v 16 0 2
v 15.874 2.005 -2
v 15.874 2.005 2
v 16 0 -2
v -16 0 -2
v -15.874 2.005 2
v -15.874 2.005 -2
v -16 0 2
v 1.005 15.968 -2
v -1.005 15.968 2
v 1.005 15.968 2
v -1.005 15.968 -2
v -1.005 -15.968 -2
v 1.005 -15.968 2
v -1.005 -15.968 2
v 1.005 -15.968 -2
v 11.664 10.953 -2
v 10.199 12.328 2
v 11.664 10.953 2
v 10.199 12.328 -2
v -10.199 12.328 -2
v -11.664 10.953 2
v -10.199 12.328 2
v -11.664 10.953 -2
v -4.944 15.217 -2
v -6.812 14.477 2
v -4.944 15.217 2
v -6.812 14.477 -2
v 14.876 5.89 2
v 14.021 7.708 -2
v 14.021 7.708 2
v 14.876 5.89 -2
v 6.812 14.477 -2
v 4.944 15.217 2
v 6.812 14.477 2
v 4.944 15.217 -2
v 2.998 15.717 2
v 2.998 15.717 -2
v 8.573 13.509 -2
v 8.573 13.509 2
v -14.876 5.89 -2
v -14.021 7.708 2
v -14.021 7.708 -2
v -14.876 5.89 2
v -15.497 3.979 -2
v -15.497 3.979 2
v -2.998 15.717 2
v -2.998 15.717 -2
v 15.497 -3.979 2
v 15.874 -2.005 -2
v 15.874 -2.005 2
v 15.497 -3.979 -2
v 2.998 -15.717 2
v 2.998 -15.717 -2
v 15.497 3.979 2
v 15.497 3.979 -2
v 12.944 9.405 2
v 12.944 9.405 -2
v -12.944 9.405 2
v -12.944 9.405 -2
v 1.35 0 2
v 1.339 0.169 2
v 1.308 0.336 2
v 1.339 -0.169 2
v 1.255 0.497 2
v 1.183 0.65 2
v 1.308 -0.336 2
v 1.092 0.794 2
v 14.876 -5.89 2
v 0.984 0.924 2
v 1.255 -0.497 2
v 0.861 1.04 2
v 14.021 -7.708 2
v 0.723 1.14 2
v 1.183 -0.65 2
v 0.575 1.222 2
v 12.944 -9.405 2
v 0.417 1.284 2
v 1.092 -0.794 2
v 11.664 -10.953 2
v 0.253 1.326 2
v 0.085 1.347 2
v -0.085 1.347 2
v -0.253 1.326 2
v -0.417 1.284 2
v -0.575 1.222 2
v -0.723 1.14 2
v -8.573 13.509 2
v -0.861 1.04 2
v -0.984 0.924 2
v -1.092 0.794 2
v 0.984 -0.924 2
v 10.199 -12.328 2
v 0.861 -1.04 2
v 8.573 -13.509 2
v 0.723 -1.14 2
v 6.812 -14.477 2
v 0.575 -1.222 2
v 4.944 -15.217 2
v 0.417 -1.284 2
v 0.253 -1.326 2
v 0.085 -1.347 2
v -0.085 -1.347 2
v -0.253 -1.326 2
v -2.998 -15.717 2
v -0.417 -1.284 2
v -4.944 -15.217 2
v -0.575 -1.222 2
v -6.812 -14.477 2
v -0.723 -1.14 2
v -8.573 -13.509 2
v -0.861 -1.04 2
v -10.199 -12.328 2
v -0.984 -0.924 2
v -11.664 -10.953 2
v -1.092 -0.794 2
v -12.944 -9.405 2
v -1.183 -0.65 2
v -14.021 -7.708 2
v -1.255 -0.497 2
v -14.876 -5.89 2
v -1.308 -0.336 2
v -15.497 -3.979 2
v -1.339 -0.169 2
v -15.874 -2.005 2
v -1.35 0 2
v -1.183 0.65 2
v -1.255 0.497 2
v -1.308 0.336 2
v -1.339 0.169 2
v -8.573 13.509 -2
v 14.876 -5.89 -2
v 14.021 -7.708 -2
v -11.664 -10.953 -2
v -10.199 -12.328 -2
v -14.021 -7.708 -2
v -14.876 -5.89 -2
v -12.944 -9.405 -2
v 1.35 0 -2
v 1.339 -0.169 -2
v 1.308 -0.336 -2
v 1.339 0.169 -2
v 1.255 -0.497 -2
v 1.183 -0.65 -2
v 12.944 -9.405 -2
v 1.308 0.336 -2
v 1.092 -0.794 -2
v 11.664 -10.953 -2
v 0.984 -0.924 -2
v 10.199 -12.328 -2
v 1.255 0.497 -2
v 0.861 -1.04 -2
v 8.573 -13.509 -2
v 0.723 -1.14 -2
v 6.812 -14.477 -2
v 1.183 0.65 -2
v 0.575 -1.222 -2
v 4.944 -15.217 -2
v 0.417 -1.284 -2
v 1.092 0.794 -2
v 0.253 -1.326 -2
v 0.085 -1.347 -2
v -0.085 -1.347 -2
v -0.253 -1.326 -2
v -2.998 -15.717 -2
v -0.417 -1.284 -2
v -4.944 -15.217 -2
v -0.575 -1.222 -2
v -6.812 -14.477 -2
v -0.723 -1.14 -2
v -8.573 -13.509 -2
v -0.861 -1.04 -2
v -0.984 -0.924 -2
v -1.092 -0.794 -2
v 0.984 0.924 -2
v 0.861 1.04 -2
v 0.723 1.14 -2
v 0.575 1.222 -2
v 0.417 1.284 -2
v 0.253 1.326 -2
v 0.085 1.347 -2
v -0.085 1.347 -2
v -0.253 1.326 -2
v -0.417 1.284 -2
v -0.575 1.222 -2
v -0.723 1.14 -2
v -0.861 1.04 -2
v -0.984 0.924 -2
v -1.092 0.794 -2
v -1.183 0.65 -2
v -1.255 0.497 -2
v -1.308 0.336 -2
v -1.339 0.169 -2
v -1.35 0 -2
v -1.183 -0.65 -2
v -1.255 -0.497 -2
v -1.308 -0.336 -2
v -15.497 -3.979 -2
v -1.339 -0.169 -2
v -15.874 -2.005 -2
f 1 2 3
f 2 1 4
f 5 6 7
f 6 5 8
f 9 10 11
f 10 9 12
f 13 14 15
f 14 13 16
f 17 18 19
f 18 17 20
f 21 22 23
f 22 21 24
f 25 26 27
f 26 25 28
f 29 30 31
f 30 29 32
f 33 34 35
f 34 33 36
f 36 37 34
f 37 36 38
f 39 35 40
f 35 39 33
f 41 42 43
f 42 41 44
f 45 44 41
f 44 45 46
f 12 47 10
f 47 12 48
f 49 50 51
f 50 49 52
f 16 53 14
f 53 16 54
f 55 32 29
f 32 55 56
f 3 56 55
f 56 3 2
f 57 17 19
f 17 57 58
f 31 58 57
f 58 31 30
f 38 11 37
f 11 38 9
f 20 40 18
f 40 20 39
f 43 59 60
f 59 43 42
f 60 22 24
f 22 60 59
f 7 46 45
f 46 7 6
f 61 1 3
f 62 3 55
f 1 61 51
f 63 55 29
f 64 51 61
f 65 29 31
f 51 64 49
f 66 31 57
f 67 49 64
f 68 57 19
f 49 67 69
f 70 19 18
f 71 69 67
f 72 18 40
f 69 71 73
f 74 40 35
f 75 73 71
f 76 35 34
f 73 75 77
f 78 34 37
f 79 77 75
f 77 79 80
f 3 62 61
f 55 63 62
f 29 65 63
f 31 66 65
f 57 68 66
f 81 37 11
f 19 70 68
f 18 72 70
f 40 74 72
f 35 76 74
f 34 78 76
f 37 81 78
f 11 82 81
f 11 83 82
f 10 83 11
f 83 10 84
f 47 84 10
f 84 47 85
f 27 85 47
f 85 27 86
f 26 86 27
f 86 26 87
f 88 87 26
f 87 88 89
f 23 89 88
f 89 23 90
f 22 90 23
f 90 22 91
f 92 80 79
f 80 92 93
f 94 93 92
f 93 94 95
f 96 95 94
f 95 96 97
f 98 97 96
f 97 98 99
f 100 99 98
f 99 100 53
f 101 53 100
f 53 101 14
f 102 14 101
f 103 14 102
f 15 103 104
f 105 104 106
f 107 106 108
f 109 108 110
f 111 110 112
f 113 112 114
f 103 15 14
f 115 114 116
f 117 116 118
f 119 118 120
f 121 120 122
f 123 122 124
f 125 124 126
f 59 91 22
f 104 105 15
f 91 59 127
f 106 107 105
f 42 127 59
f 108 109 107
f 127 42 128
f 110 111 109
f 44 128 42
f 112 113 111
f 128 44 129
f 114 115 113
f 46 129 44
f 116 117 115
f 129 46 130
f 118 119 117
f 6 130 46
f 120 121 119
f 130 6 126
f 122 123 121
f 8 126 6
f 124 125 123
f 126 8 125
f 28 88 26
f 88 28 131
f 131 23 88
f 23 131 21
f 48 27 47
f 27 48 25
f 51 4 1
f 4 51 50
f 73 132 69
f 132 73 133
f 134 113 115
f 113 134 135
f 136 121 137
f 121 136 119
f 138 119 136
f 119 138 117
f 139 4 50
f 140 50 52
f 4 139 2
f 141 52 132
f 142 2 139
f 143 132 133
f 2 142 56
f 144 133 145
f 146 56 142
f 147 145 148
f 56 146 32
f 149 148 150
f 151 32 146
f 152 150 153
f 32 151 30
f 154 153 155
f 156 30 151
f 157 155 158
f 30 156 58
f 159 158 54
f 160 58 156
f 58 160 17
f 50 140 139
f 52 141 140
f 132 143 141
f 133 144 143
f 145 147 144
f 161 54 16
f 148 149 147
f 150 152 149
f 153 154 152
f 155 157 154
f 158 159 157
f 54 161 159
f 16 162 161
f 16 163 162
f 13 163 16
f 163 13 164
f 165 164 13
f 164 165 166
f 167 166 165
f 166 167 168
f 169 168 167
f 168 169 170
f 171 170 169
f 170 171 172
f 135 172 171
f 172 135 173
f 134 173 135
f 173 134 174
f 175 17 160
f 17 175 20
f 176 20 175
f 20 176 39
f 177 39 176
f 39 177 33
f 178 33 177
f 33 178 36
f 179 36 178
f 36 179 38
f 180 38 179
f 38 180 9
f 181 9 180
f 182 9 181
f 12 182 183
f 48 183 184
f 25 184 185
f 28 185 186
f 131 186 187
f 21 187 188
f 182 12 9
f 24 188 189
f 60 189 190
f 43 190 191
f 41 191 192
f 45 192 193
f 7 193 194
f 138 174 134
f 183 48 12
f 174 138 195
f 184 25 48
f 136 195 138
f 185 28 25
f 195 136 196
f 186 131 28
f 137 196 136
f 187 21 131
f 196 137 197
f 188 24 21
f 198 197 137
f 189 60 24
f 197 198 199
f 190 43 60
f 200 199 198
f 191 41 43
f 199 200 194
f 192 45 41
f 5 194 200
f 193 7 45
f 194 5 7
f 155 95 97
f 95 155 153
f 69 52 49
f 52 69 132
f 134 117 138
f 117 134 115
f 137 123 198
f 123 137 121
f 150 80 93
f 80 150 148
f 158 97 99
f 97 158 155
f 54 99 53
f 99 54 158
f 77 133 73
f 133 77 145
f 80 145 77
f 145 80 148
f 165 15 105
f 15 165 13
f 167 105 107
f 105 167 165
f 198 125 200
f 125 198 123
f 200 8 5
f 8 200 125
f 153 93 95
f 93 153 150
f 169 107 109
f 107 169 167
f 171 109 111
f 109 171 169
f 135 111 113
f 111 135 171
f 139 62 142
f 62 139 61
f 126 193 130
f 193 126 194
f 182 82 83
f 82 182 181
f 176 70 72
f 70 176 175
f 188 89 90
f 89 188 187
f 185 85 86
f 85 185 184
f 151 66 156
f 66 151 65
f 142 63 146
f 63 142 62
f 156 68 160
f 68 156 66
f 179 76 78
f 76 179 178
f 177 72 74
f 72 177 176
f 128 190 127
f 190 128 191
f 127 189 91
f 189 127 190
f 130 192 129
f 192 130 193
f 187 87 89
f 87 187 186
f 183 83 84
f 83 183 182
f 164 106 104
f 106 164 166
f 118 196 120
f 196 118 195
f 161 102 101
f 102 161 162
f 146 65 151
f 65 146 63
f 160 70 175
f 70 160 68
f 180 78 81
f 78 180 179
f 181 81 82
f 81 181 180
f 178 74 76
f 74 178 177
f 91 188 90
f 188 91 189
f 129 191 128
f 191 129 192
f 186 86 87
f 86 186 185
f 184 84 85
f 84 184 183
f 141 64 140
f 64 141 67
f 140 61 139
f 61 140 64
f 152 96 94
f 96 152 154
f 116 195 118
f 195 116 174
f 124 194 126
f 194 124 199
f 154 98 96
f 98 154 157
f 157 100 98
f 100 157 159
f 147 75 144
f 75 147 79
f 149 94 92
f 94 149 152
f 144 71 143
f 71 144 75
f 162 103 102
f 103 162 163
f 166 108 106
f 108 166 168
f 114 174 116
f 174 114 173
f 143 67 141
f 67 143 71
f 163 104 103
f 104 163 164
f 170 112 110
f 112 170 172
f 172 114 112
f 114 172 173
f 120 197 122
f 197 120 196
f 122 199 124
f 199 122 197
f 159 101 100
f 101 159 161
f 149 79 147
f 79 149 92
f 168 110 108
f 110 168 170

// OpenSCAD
$fn = 50;


difference() {
	union() {
		translate(v = [0, 0, -2.0000000000]) {
			cylinder(h = 4, r = 16.0000000000);
		}
	}
	union() {
		translate(v = [0, 0, -100.0000000000]) {
			cylinder(h = 200, r = 1.3500000000);
		}
	}
}
